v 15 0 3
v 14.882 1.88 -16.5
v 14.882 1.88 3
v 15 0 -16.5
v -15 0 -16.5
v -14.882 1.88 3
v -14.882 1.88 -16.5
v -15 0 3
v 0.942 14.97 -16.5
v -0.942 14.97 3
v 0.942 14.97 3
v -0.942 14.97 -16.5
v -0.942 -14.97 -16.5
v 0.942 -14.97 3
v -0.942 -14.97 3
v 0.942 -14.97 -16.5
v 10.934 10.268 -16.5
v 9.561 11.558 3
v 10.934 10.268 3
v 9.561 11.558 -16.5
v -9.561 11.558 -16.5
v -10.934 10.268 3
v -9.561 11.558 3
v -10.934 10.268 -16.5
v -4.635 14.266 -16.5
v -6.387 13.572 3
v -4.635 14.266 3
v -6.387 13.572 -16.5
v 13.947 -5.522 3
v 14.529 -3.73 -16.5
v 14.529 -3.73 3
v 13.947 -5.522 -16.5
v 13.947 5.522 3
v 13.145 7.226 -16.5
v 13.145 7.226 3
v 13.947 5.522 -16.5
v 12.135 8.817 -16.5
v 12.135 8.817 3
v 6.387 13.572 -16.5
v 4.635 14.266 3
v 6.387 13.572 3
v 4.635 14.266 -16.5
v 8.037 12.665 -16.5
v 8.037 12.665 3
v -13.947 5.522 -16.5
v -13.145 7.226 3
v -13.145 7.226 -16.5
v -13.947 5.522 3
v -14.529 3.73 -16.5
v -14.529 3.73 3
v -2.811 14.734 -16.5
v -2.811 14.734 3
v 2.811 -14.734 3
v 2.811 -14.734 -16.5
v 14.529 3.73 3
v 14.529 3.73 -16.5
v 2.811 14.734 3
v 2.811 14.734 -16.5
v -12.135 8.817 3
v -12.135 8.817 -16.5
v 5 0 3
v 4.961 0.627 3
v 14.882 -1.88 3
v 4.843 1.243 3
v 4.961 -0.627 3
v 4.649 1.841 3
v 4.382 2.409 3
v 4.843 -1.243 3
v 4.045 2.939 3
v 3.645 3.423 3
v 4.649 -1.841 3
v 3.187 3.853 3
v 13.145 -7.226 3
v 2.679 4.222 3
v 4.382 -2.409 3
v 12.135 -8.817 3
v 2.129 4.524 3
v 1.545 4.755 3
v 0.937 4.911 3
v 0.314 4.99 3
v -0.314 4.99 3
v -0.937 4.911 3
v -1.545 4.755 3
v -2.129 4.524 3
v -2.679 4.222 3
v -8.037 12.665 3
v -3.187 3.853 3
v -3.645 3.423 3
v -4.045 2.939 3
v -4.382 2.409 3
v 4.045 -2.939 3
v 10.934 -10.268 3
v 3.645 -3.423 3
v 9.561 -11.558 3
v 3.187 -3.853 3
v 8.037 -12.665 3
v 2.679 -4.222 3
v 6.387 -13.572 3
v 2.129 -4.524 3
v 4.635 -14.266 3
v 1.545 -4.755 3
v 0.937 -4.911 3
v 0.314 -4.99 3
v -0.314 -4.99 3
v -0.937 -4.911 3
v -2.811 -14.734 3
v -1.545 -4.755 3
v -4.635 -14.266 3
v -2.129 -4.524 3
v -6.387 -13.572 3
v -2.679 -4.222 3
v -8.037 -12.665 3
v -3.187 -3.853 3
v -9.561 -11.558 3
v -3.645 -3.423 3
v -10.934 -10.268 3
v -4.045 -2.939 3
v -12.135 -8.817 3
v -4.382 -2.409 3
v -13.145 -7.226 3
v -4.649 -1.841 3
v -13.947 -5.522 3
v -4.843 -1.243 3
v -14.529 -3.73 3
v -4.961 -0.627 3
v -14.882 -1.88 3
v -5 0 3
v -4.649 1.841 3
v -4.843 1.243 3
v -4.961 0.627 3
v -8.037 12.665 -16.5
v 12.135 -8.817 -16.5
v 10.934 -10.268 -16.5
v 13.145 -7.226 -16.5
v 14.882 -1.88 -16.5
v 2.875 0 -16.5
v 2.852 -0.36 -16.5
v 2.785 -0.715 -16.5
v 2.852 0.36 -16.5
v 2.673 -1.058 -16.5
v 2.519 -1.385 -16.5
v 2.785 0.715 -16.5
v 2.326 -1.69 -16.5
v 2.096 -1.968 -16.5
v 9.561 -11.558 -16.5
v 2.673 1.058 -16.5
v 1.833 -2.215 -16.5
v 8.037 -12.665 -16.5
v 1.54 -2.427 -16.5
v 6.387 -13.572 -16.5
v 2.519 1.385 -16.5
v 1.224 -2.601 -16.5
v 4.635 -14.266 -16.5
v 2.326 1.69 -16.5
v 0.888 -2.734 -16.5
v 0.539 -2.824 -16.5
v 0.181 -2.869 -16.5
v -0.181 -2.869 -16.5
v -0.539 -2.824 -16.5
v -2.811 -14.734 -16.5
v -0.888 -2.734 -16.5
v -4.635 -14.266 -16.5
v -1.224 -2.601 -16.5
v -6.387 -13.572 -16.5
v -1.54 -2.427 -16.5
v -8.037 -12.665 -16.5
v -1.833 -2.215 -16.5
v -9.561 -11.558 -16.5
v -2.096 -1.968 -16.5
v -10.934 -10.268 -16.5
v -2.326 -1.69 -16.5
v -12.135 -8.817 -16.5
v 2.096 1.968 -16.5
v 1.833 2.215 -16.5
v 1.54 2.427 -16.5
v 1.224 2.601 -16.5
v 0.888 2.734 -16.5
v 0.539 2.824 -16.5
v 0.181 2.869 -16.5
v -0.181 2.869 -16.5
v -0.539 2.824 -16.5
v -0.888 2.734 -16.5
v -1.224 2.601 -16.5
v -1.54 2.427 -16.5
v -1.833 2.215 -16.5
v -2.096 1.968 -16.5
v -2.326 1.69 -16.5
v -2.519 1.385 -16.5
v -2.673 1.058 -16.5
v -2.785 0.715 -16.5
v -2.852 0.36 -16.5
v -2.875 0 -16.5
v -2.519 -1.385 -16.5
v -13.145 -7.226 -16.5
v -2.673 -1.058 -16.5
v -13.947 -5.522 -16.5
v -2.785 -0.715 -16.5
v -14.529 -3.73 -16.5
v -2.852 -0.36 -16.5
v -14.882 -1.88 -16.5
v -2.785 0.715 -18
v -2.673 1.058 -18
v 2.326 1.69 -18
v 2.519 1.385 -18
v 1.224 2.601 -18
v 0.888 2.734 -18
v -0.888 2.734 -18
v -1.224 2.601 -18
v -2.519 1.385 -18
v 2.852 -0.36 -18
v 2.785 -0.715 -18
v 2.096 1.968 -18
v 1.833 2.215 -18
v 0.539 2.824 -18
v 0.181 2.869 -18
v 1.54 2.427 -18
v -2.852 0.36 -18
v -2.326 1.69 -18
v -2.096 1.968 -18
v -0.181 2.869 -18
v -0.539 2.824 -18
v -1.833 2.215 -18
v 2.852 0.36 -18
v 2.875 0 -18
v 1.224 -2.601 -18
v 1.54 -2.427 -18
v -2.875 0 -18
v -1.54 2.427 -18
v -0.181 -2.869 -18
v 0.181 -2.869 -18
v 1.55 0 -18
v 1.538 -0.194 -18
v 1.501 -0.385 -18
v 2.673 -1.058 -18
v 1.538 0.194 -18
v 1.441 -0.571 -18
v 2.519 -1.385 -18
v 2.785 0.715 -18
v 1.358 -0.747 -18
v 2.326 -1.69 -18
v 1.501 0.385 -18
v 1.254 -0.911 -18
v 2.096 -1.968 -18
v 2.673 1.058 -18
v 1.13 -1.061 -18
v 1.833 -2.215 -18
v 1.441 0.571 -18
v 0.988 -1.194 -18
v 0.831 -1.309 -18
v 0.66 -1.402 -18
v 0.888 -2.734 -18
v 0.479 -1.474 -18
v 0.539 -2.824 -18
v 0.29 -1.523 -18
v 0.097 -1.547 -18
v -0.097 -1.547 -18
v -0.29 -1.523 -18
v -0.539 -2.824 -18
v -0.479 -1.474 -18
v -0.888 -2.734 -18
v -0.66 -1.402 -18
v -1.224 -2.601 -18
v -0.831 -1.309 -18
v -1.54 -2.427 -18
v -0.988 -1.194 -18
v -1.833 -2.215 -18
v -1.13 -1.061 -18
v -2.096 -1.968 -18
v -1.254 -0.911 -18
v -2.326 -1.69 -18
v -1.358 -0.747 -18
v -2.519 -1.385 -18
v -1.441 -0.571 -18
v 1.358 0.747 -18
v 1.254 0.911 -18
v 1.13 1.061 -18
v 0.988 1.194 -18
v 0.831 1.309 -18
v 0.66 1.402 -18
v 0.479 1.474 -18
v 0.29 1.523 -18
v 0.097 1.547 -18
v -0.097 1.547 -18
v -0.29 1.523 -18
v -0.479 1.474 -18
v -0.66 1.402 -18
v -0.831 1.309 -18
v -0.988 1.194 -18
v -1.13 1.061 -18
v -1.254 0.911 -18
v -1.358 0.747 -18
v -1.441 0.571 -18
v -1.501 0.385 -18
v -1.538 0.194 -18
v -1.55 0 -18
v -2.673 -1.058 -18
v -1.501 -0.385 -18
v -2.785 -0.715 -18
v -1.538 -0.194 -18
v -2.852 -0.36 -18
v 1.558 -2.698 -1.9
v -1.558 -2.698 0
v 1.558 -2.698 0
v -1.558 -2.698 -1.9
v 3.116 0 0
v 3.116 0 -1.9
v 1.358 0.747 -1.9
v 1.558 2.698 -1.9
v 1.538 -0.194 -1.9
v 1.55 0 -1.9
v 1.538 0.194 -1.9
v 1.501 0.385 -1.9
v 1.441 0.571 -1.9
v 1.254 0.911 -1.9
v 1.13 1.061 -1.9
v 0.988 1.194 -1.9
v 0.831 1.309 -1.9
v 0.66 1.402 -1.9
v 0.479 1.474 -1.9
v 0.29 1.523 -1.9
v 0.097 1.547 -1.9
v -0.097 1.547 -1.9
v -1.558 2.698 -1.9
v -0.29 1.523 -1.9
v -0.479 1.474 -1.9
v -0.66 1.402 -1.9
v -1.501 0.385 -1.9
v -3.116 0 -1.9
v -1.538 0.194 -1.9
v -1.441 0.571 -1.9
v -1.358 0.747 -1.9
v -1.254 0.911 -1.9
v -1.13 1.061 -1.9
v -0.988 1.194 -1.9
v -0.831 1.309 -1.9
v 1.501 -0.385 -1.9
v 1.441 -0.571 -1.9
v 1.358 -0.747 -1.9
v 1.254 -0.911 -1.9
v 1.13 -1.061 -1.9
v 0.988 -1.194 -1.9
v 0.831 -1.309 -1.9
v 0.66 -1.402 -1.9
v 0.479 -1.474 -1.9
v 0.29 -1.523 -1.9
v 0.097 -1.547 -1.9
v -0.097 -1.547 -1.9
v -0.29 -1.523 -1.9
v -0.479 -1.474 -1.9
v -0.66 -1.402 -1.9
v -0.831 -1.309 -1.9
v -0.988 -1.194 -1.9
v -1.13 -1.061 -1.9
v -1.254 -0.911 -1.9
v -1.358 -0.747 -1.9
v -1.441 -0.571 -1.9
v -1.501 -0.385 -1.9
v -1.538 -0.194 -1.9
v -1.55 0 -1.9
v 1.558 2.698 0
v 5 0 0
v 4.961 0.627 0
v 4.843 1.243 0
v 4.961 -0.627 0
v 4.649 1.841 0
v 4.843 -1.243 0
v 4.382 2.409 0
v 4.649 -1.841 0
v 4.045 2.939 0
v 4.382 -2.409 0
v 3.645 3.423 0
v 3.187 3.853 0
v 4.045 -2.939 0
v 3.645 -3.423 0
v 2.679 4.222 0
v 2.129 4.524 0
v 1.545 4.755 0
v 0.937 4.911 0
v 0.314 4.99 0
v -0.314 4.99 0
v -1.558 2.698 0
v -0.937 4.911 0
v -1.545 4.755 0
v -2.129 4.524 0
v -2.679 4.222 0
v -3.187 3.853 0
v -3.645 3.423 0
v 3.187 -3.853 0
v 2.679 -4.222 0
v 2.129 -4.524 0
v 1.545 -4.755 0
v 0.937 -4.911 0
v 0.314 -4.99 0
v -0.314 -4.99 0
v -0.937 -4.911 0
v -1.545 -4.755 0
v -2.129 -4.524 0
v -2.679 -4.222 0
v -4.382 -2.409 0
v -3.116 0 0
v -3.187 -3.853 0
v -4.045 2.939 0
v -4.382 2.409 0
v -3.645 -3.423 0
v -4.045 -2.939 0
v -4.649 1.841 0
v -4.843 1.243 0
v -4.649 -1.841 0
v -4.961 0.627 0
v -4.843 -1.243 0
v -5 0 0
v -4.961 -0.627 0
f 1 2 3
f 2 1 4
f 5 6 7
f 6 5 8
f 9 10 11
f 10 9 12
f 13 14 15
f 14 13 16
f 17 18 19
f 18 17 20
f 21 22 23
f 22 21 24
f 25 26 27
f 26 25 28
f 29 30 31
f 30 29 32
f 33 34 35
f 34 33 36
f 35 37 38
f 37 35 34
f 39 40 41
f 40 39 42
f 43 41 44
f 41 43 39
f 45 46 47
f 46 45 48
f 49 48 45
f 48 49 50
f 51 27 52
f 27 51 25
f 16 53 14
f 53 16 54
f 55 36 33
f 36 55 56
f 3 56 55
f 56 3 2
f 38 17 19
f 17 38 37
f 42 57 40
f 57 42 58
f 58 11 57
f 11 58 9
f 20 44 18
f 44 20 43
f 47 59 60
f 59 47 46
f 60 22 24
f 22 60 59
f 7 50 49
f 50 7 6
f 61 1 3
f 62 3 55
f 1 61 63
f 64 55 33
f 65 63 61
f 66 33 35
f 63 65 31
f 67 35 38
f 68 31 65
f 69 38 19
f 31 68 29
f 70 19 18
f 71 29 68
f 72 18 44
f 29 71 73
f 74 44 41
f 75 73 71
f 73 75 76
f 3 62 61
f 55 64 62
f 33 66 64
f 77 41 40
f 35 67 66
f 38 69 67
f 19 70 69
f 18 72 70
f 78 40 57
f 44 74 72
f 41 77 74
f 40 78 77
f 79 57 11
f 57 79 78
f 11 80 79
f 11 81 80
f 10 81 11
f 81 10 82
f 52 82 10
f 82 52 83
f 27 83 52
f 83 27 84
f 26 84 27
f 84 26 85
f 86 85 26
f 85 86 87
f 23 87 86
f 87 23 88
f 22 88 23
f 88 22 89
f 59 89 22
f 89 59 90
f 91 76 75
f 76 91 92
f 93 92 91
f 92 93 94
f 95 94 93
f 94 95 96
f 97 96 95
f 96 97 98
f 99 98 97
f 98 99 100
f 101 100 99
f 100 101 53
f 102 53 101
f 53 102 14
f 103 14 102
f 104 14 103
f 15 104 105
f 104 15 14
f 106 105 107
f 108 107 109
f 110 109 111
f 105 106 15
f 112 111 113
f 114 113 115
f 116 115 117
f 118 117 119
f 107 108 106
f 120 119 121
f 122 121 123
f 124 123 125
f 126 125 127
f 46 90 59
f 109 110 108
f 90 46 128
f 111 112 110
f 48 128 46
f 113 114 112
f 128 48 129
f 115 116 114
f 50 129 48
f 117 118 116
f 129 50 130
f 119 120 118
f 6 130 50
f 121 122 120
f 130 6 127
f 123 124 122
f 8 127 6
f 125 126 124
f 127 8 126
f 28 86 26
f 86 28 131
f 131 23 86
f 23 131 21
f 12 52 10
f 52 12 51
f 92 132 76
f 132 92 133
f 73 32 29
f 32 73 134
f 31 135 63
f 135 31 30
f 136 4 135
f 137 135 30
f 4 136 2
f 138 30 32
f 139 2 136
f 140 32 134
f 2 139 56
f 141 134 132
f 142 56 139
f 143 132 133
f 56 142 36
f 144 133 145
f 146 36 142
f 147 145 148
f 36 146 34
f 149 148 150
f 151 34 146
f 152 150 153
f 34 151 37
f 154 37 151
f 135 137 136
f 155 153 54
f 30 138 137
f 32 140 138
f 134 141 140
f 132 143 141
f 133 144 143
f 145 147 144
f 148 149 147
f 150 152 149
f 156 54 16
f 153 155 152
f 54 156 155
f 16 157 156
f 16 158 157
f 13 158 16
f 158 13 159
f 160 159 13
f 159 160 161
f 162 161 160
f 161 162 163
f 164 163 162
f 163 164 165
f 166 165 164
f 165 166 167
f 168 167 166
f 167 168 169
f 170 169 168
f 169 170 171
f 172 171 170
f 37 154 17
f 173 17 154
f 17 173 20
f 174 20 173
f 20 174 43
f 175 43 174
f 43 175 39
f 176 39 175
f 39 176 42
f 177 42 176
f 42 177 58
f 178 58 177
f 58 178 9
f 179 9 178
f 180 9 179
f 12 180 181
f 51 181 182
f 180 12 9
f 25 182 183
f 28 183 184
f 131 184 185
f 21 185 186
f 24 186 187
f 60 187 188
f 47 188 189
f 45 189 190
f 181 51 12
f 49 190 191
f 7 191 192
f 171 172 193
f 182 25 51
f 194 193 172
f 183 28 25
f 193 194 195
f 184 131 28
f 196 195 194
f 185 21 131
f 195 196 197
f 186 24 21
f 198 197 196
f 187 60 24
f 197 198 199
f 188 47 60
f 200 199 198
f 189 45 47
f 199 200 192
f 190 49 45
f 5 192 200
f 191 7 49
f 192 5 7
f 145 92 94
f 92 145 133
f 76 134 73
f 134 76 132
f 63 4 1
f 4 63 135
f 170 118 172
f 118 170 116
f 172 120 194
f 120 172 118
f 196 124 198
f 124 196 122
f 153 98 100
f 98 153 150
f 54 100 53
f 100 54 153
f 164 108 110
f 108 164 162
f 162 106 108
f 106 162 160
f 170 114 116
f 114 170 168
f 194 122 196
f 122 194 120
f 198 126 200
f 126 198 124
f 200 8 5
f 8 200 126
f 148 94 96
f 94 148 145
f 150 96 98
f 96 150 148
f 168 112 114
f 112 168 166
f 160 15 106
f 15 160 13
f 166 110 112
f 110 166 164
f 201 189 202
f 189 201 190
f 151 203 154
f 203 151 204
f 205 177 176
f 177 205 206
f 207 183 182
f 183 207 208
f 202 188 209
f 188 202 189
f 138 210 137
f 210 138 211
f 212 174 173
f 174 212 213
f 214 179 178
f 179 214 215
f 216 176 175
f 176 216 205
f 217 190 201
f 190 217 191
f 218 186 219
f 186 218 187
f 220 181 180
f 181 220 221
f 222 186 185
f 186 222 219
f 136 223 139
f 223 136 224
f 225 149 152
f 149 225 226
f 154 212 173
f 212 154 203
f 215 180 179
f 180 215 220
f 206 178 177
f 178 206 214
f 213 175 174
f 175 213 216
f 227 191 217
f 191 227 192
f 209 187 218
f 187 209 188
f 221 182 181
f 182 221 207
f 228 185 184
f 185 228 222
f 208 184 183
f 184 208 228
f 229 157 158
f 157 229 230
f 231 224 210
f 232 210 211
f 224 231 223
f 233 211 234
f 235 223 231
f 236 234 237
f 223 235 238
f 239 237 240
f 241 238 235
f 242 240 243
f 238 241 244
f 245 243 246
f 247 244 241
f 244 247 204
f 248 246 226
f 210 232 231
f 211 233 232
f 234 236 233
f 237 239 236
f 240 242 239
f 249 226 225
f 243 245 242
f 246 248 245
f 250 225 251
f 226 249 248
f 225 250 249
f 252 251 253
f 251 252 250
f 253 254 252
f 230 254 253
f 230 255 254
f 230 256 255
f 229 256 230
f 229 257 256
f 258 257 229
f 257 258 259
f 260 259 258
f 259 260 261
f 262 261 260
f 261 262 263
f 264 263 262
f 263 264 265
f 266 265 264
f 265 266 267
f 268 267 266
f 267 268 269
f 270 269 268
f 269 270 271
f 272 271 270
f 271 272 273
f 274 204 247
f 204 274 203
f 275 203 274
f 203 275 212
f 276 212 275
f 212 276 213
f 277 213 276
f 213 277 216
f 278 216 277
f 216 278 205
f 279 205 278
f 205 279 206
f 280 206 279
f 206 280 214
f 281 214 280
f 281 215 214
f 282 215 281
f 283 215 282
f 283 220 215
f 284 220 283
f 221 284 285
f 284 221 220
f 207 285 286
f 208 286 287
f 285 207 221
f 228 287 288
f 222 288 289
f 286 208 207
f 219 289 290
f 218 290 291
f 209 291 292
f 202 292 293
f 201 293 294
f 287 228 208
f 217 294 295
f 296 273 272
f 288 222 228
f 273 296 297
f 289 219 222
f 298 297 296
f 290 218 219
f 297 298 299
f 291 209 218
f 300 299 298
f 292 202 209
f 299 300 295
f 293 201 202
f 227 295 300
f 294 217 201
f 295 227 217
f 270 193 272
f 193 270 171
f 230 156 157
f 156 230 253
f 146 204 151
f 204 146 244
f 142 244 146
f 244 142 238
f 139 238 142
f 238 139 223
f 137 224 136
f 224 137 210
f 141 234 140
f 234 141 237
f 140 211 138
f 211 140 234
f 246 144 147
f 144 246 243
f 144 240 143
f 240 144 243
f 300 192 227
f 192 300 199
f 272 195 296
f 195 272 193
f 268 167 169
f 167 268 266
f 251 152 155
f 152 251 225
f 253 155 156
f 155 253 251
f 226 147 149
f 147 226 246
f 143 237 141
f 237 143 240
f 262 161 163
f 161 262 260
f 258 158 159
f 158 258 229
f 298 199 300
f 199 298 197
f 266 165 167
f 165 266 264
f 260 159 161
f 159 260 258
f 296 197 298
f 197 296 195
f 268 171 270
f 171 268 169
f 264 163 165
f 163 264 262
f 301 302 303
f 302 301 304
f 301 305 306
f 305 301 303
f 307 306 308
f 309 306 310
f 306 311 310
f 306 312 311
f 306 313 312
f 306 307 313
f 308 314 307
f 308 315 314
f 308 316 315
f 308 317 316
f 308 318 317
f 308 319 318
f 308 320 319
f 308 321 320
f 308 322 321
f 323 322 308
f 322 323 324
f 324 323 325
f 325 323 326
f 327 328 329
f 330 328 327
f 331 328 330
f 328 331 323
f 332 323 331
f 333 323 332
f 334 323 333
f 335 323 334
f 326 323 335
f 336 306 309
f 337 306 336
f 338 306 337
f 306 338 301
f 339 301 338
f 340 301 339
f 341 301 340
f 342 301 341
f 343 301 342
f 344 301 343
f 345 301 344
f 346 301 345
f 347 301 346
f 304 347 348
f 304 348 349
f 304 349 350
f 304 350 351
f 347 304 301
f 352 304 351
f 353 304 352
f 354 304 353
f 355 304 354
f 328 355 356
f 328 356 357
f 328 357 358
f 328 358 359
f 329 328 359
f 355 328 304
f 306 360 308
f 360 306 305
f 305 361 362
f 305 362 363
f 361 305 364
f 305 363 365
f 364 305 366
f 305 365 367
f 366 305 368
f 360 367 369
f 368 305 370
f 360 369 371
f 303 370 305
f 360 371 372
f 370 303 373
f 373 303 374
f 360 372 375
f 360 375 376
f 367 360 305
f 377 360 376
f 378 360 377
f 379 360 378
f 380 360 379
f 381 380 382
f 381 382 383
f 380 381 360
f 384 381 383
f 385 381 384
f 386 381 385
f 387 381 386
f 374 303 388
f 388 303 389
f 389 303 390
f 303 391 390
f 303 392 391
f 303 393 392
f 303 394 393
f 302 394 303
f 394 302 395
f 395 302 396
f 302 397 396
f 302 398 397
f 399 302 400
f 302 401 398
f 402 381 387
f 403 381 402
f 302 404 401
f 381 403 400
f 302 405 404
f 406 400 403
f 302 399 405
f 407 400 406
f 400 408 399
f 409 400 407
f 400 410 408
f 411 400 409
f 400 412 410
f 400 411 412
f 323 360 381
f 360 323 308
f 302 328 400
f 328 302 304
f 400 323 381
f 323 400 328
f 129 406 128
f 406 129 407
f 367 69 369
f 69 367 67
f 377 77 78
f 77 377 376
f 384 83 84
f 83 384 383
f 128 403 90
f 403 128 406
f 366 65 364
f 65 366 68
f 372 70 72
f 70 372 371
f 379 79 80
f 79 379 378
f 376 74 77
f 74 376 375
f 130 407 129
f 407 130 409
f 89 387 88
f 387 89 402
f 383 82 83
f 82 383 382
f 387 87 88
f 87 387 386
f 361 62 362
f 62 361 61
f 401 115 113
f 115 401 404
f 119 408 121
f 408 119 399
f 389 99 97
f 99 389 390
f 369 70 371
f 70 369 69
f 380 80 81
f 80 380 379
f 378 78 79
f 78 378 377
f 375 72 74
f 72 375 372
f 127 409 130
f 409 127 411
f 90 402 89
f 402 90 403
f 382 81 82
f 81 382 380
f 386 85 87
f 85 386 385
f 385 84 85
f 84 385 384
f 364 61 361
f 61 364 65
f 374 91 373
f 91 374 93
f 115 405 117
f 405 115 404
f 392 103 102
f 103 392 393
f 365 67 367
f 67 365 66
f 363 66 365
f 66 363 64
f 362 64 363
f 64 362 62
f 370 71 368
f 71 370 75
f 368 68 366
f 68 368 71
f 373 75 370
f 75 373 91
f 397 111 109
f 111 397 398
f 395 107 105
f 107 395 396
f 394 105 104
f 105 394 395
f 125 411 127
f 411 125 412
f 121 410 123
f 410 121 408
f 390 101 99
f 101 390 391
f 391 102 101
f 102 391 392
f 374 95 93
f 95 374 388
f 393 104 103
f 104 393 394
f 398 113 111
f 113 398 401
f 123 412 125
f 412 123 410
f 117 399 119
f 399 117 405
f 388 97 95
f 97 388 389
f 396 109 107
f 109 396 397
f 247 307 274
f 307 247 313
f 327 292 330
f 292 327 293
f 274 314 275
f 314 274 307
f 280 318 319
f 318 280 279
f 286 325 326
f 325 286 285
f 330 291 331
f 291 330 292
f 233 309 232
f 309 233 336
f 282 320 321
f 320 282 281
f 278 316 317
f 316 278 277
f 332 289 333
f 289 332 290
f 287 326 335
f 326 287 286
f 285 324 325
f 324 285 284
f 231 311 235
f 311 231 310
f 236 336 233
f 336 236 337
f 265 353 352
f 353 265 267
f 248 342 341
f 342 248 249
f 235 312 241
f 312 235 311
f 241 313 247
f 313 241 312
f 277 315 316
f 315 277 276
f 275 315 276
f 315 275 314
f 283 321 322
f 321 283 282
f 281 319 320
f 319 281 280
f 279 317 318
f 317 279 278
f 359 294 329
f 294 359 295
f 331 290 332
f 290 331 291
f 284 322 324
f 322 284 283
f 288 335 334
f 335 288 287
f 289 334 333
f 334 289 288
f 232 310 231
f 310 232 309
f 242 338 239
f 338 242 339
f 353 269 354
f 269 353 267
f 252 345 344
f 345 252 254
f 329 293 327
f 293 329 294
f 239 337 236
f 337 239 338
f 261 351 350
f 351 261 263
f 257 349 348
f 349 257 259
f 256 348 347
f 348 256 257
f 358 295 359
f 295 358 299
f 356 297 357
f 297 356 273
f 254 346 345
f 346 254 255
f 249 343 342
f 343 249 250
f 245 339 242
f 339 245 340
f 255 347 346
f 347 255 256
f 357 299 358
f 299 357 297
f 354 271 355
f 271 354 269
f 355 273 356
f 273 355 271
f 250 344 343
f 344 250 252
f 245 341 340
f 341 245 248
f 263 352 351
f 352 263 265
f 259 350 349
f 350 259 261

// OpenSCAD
$fn = 50;

difference() {
	union() {
		translate(v = [0, 0, -16.5]) {
			cylinder(h = 19.5, r = 15.0);
		}
		#translate(v = [0, 0, -18.0]) {
			cylinder(h = 18, r = 2.875);
		}
	}
	union() {
		translate(v = [0, 0, 0]) {
			rotate(a = [0, 0, 0]) {
				difference() {
					union() {
						translate(v = [0, 0, -1.9]) {
							linear_extrude(height = 1.9) {
								polygon(points = [[3.1158, 0.0], [1.5579000000000005, 2.698361953111554], [-1.5578999999999994, 2.6983619531115544], [-3.1158, 3.815754496783323e-16], [-1.5579000000000014, -2.6983619531115535], [1.557899999999998, -2.6983619531115552]]);
							}
						}
					}
					union();
				}
			}
		}
		#cylinder(h = 3, r = 5.0);
		#translate(v = [0, 0, -100.0]) {
			cylinder(h = 200, r = 1.55);
		}
	}
}
